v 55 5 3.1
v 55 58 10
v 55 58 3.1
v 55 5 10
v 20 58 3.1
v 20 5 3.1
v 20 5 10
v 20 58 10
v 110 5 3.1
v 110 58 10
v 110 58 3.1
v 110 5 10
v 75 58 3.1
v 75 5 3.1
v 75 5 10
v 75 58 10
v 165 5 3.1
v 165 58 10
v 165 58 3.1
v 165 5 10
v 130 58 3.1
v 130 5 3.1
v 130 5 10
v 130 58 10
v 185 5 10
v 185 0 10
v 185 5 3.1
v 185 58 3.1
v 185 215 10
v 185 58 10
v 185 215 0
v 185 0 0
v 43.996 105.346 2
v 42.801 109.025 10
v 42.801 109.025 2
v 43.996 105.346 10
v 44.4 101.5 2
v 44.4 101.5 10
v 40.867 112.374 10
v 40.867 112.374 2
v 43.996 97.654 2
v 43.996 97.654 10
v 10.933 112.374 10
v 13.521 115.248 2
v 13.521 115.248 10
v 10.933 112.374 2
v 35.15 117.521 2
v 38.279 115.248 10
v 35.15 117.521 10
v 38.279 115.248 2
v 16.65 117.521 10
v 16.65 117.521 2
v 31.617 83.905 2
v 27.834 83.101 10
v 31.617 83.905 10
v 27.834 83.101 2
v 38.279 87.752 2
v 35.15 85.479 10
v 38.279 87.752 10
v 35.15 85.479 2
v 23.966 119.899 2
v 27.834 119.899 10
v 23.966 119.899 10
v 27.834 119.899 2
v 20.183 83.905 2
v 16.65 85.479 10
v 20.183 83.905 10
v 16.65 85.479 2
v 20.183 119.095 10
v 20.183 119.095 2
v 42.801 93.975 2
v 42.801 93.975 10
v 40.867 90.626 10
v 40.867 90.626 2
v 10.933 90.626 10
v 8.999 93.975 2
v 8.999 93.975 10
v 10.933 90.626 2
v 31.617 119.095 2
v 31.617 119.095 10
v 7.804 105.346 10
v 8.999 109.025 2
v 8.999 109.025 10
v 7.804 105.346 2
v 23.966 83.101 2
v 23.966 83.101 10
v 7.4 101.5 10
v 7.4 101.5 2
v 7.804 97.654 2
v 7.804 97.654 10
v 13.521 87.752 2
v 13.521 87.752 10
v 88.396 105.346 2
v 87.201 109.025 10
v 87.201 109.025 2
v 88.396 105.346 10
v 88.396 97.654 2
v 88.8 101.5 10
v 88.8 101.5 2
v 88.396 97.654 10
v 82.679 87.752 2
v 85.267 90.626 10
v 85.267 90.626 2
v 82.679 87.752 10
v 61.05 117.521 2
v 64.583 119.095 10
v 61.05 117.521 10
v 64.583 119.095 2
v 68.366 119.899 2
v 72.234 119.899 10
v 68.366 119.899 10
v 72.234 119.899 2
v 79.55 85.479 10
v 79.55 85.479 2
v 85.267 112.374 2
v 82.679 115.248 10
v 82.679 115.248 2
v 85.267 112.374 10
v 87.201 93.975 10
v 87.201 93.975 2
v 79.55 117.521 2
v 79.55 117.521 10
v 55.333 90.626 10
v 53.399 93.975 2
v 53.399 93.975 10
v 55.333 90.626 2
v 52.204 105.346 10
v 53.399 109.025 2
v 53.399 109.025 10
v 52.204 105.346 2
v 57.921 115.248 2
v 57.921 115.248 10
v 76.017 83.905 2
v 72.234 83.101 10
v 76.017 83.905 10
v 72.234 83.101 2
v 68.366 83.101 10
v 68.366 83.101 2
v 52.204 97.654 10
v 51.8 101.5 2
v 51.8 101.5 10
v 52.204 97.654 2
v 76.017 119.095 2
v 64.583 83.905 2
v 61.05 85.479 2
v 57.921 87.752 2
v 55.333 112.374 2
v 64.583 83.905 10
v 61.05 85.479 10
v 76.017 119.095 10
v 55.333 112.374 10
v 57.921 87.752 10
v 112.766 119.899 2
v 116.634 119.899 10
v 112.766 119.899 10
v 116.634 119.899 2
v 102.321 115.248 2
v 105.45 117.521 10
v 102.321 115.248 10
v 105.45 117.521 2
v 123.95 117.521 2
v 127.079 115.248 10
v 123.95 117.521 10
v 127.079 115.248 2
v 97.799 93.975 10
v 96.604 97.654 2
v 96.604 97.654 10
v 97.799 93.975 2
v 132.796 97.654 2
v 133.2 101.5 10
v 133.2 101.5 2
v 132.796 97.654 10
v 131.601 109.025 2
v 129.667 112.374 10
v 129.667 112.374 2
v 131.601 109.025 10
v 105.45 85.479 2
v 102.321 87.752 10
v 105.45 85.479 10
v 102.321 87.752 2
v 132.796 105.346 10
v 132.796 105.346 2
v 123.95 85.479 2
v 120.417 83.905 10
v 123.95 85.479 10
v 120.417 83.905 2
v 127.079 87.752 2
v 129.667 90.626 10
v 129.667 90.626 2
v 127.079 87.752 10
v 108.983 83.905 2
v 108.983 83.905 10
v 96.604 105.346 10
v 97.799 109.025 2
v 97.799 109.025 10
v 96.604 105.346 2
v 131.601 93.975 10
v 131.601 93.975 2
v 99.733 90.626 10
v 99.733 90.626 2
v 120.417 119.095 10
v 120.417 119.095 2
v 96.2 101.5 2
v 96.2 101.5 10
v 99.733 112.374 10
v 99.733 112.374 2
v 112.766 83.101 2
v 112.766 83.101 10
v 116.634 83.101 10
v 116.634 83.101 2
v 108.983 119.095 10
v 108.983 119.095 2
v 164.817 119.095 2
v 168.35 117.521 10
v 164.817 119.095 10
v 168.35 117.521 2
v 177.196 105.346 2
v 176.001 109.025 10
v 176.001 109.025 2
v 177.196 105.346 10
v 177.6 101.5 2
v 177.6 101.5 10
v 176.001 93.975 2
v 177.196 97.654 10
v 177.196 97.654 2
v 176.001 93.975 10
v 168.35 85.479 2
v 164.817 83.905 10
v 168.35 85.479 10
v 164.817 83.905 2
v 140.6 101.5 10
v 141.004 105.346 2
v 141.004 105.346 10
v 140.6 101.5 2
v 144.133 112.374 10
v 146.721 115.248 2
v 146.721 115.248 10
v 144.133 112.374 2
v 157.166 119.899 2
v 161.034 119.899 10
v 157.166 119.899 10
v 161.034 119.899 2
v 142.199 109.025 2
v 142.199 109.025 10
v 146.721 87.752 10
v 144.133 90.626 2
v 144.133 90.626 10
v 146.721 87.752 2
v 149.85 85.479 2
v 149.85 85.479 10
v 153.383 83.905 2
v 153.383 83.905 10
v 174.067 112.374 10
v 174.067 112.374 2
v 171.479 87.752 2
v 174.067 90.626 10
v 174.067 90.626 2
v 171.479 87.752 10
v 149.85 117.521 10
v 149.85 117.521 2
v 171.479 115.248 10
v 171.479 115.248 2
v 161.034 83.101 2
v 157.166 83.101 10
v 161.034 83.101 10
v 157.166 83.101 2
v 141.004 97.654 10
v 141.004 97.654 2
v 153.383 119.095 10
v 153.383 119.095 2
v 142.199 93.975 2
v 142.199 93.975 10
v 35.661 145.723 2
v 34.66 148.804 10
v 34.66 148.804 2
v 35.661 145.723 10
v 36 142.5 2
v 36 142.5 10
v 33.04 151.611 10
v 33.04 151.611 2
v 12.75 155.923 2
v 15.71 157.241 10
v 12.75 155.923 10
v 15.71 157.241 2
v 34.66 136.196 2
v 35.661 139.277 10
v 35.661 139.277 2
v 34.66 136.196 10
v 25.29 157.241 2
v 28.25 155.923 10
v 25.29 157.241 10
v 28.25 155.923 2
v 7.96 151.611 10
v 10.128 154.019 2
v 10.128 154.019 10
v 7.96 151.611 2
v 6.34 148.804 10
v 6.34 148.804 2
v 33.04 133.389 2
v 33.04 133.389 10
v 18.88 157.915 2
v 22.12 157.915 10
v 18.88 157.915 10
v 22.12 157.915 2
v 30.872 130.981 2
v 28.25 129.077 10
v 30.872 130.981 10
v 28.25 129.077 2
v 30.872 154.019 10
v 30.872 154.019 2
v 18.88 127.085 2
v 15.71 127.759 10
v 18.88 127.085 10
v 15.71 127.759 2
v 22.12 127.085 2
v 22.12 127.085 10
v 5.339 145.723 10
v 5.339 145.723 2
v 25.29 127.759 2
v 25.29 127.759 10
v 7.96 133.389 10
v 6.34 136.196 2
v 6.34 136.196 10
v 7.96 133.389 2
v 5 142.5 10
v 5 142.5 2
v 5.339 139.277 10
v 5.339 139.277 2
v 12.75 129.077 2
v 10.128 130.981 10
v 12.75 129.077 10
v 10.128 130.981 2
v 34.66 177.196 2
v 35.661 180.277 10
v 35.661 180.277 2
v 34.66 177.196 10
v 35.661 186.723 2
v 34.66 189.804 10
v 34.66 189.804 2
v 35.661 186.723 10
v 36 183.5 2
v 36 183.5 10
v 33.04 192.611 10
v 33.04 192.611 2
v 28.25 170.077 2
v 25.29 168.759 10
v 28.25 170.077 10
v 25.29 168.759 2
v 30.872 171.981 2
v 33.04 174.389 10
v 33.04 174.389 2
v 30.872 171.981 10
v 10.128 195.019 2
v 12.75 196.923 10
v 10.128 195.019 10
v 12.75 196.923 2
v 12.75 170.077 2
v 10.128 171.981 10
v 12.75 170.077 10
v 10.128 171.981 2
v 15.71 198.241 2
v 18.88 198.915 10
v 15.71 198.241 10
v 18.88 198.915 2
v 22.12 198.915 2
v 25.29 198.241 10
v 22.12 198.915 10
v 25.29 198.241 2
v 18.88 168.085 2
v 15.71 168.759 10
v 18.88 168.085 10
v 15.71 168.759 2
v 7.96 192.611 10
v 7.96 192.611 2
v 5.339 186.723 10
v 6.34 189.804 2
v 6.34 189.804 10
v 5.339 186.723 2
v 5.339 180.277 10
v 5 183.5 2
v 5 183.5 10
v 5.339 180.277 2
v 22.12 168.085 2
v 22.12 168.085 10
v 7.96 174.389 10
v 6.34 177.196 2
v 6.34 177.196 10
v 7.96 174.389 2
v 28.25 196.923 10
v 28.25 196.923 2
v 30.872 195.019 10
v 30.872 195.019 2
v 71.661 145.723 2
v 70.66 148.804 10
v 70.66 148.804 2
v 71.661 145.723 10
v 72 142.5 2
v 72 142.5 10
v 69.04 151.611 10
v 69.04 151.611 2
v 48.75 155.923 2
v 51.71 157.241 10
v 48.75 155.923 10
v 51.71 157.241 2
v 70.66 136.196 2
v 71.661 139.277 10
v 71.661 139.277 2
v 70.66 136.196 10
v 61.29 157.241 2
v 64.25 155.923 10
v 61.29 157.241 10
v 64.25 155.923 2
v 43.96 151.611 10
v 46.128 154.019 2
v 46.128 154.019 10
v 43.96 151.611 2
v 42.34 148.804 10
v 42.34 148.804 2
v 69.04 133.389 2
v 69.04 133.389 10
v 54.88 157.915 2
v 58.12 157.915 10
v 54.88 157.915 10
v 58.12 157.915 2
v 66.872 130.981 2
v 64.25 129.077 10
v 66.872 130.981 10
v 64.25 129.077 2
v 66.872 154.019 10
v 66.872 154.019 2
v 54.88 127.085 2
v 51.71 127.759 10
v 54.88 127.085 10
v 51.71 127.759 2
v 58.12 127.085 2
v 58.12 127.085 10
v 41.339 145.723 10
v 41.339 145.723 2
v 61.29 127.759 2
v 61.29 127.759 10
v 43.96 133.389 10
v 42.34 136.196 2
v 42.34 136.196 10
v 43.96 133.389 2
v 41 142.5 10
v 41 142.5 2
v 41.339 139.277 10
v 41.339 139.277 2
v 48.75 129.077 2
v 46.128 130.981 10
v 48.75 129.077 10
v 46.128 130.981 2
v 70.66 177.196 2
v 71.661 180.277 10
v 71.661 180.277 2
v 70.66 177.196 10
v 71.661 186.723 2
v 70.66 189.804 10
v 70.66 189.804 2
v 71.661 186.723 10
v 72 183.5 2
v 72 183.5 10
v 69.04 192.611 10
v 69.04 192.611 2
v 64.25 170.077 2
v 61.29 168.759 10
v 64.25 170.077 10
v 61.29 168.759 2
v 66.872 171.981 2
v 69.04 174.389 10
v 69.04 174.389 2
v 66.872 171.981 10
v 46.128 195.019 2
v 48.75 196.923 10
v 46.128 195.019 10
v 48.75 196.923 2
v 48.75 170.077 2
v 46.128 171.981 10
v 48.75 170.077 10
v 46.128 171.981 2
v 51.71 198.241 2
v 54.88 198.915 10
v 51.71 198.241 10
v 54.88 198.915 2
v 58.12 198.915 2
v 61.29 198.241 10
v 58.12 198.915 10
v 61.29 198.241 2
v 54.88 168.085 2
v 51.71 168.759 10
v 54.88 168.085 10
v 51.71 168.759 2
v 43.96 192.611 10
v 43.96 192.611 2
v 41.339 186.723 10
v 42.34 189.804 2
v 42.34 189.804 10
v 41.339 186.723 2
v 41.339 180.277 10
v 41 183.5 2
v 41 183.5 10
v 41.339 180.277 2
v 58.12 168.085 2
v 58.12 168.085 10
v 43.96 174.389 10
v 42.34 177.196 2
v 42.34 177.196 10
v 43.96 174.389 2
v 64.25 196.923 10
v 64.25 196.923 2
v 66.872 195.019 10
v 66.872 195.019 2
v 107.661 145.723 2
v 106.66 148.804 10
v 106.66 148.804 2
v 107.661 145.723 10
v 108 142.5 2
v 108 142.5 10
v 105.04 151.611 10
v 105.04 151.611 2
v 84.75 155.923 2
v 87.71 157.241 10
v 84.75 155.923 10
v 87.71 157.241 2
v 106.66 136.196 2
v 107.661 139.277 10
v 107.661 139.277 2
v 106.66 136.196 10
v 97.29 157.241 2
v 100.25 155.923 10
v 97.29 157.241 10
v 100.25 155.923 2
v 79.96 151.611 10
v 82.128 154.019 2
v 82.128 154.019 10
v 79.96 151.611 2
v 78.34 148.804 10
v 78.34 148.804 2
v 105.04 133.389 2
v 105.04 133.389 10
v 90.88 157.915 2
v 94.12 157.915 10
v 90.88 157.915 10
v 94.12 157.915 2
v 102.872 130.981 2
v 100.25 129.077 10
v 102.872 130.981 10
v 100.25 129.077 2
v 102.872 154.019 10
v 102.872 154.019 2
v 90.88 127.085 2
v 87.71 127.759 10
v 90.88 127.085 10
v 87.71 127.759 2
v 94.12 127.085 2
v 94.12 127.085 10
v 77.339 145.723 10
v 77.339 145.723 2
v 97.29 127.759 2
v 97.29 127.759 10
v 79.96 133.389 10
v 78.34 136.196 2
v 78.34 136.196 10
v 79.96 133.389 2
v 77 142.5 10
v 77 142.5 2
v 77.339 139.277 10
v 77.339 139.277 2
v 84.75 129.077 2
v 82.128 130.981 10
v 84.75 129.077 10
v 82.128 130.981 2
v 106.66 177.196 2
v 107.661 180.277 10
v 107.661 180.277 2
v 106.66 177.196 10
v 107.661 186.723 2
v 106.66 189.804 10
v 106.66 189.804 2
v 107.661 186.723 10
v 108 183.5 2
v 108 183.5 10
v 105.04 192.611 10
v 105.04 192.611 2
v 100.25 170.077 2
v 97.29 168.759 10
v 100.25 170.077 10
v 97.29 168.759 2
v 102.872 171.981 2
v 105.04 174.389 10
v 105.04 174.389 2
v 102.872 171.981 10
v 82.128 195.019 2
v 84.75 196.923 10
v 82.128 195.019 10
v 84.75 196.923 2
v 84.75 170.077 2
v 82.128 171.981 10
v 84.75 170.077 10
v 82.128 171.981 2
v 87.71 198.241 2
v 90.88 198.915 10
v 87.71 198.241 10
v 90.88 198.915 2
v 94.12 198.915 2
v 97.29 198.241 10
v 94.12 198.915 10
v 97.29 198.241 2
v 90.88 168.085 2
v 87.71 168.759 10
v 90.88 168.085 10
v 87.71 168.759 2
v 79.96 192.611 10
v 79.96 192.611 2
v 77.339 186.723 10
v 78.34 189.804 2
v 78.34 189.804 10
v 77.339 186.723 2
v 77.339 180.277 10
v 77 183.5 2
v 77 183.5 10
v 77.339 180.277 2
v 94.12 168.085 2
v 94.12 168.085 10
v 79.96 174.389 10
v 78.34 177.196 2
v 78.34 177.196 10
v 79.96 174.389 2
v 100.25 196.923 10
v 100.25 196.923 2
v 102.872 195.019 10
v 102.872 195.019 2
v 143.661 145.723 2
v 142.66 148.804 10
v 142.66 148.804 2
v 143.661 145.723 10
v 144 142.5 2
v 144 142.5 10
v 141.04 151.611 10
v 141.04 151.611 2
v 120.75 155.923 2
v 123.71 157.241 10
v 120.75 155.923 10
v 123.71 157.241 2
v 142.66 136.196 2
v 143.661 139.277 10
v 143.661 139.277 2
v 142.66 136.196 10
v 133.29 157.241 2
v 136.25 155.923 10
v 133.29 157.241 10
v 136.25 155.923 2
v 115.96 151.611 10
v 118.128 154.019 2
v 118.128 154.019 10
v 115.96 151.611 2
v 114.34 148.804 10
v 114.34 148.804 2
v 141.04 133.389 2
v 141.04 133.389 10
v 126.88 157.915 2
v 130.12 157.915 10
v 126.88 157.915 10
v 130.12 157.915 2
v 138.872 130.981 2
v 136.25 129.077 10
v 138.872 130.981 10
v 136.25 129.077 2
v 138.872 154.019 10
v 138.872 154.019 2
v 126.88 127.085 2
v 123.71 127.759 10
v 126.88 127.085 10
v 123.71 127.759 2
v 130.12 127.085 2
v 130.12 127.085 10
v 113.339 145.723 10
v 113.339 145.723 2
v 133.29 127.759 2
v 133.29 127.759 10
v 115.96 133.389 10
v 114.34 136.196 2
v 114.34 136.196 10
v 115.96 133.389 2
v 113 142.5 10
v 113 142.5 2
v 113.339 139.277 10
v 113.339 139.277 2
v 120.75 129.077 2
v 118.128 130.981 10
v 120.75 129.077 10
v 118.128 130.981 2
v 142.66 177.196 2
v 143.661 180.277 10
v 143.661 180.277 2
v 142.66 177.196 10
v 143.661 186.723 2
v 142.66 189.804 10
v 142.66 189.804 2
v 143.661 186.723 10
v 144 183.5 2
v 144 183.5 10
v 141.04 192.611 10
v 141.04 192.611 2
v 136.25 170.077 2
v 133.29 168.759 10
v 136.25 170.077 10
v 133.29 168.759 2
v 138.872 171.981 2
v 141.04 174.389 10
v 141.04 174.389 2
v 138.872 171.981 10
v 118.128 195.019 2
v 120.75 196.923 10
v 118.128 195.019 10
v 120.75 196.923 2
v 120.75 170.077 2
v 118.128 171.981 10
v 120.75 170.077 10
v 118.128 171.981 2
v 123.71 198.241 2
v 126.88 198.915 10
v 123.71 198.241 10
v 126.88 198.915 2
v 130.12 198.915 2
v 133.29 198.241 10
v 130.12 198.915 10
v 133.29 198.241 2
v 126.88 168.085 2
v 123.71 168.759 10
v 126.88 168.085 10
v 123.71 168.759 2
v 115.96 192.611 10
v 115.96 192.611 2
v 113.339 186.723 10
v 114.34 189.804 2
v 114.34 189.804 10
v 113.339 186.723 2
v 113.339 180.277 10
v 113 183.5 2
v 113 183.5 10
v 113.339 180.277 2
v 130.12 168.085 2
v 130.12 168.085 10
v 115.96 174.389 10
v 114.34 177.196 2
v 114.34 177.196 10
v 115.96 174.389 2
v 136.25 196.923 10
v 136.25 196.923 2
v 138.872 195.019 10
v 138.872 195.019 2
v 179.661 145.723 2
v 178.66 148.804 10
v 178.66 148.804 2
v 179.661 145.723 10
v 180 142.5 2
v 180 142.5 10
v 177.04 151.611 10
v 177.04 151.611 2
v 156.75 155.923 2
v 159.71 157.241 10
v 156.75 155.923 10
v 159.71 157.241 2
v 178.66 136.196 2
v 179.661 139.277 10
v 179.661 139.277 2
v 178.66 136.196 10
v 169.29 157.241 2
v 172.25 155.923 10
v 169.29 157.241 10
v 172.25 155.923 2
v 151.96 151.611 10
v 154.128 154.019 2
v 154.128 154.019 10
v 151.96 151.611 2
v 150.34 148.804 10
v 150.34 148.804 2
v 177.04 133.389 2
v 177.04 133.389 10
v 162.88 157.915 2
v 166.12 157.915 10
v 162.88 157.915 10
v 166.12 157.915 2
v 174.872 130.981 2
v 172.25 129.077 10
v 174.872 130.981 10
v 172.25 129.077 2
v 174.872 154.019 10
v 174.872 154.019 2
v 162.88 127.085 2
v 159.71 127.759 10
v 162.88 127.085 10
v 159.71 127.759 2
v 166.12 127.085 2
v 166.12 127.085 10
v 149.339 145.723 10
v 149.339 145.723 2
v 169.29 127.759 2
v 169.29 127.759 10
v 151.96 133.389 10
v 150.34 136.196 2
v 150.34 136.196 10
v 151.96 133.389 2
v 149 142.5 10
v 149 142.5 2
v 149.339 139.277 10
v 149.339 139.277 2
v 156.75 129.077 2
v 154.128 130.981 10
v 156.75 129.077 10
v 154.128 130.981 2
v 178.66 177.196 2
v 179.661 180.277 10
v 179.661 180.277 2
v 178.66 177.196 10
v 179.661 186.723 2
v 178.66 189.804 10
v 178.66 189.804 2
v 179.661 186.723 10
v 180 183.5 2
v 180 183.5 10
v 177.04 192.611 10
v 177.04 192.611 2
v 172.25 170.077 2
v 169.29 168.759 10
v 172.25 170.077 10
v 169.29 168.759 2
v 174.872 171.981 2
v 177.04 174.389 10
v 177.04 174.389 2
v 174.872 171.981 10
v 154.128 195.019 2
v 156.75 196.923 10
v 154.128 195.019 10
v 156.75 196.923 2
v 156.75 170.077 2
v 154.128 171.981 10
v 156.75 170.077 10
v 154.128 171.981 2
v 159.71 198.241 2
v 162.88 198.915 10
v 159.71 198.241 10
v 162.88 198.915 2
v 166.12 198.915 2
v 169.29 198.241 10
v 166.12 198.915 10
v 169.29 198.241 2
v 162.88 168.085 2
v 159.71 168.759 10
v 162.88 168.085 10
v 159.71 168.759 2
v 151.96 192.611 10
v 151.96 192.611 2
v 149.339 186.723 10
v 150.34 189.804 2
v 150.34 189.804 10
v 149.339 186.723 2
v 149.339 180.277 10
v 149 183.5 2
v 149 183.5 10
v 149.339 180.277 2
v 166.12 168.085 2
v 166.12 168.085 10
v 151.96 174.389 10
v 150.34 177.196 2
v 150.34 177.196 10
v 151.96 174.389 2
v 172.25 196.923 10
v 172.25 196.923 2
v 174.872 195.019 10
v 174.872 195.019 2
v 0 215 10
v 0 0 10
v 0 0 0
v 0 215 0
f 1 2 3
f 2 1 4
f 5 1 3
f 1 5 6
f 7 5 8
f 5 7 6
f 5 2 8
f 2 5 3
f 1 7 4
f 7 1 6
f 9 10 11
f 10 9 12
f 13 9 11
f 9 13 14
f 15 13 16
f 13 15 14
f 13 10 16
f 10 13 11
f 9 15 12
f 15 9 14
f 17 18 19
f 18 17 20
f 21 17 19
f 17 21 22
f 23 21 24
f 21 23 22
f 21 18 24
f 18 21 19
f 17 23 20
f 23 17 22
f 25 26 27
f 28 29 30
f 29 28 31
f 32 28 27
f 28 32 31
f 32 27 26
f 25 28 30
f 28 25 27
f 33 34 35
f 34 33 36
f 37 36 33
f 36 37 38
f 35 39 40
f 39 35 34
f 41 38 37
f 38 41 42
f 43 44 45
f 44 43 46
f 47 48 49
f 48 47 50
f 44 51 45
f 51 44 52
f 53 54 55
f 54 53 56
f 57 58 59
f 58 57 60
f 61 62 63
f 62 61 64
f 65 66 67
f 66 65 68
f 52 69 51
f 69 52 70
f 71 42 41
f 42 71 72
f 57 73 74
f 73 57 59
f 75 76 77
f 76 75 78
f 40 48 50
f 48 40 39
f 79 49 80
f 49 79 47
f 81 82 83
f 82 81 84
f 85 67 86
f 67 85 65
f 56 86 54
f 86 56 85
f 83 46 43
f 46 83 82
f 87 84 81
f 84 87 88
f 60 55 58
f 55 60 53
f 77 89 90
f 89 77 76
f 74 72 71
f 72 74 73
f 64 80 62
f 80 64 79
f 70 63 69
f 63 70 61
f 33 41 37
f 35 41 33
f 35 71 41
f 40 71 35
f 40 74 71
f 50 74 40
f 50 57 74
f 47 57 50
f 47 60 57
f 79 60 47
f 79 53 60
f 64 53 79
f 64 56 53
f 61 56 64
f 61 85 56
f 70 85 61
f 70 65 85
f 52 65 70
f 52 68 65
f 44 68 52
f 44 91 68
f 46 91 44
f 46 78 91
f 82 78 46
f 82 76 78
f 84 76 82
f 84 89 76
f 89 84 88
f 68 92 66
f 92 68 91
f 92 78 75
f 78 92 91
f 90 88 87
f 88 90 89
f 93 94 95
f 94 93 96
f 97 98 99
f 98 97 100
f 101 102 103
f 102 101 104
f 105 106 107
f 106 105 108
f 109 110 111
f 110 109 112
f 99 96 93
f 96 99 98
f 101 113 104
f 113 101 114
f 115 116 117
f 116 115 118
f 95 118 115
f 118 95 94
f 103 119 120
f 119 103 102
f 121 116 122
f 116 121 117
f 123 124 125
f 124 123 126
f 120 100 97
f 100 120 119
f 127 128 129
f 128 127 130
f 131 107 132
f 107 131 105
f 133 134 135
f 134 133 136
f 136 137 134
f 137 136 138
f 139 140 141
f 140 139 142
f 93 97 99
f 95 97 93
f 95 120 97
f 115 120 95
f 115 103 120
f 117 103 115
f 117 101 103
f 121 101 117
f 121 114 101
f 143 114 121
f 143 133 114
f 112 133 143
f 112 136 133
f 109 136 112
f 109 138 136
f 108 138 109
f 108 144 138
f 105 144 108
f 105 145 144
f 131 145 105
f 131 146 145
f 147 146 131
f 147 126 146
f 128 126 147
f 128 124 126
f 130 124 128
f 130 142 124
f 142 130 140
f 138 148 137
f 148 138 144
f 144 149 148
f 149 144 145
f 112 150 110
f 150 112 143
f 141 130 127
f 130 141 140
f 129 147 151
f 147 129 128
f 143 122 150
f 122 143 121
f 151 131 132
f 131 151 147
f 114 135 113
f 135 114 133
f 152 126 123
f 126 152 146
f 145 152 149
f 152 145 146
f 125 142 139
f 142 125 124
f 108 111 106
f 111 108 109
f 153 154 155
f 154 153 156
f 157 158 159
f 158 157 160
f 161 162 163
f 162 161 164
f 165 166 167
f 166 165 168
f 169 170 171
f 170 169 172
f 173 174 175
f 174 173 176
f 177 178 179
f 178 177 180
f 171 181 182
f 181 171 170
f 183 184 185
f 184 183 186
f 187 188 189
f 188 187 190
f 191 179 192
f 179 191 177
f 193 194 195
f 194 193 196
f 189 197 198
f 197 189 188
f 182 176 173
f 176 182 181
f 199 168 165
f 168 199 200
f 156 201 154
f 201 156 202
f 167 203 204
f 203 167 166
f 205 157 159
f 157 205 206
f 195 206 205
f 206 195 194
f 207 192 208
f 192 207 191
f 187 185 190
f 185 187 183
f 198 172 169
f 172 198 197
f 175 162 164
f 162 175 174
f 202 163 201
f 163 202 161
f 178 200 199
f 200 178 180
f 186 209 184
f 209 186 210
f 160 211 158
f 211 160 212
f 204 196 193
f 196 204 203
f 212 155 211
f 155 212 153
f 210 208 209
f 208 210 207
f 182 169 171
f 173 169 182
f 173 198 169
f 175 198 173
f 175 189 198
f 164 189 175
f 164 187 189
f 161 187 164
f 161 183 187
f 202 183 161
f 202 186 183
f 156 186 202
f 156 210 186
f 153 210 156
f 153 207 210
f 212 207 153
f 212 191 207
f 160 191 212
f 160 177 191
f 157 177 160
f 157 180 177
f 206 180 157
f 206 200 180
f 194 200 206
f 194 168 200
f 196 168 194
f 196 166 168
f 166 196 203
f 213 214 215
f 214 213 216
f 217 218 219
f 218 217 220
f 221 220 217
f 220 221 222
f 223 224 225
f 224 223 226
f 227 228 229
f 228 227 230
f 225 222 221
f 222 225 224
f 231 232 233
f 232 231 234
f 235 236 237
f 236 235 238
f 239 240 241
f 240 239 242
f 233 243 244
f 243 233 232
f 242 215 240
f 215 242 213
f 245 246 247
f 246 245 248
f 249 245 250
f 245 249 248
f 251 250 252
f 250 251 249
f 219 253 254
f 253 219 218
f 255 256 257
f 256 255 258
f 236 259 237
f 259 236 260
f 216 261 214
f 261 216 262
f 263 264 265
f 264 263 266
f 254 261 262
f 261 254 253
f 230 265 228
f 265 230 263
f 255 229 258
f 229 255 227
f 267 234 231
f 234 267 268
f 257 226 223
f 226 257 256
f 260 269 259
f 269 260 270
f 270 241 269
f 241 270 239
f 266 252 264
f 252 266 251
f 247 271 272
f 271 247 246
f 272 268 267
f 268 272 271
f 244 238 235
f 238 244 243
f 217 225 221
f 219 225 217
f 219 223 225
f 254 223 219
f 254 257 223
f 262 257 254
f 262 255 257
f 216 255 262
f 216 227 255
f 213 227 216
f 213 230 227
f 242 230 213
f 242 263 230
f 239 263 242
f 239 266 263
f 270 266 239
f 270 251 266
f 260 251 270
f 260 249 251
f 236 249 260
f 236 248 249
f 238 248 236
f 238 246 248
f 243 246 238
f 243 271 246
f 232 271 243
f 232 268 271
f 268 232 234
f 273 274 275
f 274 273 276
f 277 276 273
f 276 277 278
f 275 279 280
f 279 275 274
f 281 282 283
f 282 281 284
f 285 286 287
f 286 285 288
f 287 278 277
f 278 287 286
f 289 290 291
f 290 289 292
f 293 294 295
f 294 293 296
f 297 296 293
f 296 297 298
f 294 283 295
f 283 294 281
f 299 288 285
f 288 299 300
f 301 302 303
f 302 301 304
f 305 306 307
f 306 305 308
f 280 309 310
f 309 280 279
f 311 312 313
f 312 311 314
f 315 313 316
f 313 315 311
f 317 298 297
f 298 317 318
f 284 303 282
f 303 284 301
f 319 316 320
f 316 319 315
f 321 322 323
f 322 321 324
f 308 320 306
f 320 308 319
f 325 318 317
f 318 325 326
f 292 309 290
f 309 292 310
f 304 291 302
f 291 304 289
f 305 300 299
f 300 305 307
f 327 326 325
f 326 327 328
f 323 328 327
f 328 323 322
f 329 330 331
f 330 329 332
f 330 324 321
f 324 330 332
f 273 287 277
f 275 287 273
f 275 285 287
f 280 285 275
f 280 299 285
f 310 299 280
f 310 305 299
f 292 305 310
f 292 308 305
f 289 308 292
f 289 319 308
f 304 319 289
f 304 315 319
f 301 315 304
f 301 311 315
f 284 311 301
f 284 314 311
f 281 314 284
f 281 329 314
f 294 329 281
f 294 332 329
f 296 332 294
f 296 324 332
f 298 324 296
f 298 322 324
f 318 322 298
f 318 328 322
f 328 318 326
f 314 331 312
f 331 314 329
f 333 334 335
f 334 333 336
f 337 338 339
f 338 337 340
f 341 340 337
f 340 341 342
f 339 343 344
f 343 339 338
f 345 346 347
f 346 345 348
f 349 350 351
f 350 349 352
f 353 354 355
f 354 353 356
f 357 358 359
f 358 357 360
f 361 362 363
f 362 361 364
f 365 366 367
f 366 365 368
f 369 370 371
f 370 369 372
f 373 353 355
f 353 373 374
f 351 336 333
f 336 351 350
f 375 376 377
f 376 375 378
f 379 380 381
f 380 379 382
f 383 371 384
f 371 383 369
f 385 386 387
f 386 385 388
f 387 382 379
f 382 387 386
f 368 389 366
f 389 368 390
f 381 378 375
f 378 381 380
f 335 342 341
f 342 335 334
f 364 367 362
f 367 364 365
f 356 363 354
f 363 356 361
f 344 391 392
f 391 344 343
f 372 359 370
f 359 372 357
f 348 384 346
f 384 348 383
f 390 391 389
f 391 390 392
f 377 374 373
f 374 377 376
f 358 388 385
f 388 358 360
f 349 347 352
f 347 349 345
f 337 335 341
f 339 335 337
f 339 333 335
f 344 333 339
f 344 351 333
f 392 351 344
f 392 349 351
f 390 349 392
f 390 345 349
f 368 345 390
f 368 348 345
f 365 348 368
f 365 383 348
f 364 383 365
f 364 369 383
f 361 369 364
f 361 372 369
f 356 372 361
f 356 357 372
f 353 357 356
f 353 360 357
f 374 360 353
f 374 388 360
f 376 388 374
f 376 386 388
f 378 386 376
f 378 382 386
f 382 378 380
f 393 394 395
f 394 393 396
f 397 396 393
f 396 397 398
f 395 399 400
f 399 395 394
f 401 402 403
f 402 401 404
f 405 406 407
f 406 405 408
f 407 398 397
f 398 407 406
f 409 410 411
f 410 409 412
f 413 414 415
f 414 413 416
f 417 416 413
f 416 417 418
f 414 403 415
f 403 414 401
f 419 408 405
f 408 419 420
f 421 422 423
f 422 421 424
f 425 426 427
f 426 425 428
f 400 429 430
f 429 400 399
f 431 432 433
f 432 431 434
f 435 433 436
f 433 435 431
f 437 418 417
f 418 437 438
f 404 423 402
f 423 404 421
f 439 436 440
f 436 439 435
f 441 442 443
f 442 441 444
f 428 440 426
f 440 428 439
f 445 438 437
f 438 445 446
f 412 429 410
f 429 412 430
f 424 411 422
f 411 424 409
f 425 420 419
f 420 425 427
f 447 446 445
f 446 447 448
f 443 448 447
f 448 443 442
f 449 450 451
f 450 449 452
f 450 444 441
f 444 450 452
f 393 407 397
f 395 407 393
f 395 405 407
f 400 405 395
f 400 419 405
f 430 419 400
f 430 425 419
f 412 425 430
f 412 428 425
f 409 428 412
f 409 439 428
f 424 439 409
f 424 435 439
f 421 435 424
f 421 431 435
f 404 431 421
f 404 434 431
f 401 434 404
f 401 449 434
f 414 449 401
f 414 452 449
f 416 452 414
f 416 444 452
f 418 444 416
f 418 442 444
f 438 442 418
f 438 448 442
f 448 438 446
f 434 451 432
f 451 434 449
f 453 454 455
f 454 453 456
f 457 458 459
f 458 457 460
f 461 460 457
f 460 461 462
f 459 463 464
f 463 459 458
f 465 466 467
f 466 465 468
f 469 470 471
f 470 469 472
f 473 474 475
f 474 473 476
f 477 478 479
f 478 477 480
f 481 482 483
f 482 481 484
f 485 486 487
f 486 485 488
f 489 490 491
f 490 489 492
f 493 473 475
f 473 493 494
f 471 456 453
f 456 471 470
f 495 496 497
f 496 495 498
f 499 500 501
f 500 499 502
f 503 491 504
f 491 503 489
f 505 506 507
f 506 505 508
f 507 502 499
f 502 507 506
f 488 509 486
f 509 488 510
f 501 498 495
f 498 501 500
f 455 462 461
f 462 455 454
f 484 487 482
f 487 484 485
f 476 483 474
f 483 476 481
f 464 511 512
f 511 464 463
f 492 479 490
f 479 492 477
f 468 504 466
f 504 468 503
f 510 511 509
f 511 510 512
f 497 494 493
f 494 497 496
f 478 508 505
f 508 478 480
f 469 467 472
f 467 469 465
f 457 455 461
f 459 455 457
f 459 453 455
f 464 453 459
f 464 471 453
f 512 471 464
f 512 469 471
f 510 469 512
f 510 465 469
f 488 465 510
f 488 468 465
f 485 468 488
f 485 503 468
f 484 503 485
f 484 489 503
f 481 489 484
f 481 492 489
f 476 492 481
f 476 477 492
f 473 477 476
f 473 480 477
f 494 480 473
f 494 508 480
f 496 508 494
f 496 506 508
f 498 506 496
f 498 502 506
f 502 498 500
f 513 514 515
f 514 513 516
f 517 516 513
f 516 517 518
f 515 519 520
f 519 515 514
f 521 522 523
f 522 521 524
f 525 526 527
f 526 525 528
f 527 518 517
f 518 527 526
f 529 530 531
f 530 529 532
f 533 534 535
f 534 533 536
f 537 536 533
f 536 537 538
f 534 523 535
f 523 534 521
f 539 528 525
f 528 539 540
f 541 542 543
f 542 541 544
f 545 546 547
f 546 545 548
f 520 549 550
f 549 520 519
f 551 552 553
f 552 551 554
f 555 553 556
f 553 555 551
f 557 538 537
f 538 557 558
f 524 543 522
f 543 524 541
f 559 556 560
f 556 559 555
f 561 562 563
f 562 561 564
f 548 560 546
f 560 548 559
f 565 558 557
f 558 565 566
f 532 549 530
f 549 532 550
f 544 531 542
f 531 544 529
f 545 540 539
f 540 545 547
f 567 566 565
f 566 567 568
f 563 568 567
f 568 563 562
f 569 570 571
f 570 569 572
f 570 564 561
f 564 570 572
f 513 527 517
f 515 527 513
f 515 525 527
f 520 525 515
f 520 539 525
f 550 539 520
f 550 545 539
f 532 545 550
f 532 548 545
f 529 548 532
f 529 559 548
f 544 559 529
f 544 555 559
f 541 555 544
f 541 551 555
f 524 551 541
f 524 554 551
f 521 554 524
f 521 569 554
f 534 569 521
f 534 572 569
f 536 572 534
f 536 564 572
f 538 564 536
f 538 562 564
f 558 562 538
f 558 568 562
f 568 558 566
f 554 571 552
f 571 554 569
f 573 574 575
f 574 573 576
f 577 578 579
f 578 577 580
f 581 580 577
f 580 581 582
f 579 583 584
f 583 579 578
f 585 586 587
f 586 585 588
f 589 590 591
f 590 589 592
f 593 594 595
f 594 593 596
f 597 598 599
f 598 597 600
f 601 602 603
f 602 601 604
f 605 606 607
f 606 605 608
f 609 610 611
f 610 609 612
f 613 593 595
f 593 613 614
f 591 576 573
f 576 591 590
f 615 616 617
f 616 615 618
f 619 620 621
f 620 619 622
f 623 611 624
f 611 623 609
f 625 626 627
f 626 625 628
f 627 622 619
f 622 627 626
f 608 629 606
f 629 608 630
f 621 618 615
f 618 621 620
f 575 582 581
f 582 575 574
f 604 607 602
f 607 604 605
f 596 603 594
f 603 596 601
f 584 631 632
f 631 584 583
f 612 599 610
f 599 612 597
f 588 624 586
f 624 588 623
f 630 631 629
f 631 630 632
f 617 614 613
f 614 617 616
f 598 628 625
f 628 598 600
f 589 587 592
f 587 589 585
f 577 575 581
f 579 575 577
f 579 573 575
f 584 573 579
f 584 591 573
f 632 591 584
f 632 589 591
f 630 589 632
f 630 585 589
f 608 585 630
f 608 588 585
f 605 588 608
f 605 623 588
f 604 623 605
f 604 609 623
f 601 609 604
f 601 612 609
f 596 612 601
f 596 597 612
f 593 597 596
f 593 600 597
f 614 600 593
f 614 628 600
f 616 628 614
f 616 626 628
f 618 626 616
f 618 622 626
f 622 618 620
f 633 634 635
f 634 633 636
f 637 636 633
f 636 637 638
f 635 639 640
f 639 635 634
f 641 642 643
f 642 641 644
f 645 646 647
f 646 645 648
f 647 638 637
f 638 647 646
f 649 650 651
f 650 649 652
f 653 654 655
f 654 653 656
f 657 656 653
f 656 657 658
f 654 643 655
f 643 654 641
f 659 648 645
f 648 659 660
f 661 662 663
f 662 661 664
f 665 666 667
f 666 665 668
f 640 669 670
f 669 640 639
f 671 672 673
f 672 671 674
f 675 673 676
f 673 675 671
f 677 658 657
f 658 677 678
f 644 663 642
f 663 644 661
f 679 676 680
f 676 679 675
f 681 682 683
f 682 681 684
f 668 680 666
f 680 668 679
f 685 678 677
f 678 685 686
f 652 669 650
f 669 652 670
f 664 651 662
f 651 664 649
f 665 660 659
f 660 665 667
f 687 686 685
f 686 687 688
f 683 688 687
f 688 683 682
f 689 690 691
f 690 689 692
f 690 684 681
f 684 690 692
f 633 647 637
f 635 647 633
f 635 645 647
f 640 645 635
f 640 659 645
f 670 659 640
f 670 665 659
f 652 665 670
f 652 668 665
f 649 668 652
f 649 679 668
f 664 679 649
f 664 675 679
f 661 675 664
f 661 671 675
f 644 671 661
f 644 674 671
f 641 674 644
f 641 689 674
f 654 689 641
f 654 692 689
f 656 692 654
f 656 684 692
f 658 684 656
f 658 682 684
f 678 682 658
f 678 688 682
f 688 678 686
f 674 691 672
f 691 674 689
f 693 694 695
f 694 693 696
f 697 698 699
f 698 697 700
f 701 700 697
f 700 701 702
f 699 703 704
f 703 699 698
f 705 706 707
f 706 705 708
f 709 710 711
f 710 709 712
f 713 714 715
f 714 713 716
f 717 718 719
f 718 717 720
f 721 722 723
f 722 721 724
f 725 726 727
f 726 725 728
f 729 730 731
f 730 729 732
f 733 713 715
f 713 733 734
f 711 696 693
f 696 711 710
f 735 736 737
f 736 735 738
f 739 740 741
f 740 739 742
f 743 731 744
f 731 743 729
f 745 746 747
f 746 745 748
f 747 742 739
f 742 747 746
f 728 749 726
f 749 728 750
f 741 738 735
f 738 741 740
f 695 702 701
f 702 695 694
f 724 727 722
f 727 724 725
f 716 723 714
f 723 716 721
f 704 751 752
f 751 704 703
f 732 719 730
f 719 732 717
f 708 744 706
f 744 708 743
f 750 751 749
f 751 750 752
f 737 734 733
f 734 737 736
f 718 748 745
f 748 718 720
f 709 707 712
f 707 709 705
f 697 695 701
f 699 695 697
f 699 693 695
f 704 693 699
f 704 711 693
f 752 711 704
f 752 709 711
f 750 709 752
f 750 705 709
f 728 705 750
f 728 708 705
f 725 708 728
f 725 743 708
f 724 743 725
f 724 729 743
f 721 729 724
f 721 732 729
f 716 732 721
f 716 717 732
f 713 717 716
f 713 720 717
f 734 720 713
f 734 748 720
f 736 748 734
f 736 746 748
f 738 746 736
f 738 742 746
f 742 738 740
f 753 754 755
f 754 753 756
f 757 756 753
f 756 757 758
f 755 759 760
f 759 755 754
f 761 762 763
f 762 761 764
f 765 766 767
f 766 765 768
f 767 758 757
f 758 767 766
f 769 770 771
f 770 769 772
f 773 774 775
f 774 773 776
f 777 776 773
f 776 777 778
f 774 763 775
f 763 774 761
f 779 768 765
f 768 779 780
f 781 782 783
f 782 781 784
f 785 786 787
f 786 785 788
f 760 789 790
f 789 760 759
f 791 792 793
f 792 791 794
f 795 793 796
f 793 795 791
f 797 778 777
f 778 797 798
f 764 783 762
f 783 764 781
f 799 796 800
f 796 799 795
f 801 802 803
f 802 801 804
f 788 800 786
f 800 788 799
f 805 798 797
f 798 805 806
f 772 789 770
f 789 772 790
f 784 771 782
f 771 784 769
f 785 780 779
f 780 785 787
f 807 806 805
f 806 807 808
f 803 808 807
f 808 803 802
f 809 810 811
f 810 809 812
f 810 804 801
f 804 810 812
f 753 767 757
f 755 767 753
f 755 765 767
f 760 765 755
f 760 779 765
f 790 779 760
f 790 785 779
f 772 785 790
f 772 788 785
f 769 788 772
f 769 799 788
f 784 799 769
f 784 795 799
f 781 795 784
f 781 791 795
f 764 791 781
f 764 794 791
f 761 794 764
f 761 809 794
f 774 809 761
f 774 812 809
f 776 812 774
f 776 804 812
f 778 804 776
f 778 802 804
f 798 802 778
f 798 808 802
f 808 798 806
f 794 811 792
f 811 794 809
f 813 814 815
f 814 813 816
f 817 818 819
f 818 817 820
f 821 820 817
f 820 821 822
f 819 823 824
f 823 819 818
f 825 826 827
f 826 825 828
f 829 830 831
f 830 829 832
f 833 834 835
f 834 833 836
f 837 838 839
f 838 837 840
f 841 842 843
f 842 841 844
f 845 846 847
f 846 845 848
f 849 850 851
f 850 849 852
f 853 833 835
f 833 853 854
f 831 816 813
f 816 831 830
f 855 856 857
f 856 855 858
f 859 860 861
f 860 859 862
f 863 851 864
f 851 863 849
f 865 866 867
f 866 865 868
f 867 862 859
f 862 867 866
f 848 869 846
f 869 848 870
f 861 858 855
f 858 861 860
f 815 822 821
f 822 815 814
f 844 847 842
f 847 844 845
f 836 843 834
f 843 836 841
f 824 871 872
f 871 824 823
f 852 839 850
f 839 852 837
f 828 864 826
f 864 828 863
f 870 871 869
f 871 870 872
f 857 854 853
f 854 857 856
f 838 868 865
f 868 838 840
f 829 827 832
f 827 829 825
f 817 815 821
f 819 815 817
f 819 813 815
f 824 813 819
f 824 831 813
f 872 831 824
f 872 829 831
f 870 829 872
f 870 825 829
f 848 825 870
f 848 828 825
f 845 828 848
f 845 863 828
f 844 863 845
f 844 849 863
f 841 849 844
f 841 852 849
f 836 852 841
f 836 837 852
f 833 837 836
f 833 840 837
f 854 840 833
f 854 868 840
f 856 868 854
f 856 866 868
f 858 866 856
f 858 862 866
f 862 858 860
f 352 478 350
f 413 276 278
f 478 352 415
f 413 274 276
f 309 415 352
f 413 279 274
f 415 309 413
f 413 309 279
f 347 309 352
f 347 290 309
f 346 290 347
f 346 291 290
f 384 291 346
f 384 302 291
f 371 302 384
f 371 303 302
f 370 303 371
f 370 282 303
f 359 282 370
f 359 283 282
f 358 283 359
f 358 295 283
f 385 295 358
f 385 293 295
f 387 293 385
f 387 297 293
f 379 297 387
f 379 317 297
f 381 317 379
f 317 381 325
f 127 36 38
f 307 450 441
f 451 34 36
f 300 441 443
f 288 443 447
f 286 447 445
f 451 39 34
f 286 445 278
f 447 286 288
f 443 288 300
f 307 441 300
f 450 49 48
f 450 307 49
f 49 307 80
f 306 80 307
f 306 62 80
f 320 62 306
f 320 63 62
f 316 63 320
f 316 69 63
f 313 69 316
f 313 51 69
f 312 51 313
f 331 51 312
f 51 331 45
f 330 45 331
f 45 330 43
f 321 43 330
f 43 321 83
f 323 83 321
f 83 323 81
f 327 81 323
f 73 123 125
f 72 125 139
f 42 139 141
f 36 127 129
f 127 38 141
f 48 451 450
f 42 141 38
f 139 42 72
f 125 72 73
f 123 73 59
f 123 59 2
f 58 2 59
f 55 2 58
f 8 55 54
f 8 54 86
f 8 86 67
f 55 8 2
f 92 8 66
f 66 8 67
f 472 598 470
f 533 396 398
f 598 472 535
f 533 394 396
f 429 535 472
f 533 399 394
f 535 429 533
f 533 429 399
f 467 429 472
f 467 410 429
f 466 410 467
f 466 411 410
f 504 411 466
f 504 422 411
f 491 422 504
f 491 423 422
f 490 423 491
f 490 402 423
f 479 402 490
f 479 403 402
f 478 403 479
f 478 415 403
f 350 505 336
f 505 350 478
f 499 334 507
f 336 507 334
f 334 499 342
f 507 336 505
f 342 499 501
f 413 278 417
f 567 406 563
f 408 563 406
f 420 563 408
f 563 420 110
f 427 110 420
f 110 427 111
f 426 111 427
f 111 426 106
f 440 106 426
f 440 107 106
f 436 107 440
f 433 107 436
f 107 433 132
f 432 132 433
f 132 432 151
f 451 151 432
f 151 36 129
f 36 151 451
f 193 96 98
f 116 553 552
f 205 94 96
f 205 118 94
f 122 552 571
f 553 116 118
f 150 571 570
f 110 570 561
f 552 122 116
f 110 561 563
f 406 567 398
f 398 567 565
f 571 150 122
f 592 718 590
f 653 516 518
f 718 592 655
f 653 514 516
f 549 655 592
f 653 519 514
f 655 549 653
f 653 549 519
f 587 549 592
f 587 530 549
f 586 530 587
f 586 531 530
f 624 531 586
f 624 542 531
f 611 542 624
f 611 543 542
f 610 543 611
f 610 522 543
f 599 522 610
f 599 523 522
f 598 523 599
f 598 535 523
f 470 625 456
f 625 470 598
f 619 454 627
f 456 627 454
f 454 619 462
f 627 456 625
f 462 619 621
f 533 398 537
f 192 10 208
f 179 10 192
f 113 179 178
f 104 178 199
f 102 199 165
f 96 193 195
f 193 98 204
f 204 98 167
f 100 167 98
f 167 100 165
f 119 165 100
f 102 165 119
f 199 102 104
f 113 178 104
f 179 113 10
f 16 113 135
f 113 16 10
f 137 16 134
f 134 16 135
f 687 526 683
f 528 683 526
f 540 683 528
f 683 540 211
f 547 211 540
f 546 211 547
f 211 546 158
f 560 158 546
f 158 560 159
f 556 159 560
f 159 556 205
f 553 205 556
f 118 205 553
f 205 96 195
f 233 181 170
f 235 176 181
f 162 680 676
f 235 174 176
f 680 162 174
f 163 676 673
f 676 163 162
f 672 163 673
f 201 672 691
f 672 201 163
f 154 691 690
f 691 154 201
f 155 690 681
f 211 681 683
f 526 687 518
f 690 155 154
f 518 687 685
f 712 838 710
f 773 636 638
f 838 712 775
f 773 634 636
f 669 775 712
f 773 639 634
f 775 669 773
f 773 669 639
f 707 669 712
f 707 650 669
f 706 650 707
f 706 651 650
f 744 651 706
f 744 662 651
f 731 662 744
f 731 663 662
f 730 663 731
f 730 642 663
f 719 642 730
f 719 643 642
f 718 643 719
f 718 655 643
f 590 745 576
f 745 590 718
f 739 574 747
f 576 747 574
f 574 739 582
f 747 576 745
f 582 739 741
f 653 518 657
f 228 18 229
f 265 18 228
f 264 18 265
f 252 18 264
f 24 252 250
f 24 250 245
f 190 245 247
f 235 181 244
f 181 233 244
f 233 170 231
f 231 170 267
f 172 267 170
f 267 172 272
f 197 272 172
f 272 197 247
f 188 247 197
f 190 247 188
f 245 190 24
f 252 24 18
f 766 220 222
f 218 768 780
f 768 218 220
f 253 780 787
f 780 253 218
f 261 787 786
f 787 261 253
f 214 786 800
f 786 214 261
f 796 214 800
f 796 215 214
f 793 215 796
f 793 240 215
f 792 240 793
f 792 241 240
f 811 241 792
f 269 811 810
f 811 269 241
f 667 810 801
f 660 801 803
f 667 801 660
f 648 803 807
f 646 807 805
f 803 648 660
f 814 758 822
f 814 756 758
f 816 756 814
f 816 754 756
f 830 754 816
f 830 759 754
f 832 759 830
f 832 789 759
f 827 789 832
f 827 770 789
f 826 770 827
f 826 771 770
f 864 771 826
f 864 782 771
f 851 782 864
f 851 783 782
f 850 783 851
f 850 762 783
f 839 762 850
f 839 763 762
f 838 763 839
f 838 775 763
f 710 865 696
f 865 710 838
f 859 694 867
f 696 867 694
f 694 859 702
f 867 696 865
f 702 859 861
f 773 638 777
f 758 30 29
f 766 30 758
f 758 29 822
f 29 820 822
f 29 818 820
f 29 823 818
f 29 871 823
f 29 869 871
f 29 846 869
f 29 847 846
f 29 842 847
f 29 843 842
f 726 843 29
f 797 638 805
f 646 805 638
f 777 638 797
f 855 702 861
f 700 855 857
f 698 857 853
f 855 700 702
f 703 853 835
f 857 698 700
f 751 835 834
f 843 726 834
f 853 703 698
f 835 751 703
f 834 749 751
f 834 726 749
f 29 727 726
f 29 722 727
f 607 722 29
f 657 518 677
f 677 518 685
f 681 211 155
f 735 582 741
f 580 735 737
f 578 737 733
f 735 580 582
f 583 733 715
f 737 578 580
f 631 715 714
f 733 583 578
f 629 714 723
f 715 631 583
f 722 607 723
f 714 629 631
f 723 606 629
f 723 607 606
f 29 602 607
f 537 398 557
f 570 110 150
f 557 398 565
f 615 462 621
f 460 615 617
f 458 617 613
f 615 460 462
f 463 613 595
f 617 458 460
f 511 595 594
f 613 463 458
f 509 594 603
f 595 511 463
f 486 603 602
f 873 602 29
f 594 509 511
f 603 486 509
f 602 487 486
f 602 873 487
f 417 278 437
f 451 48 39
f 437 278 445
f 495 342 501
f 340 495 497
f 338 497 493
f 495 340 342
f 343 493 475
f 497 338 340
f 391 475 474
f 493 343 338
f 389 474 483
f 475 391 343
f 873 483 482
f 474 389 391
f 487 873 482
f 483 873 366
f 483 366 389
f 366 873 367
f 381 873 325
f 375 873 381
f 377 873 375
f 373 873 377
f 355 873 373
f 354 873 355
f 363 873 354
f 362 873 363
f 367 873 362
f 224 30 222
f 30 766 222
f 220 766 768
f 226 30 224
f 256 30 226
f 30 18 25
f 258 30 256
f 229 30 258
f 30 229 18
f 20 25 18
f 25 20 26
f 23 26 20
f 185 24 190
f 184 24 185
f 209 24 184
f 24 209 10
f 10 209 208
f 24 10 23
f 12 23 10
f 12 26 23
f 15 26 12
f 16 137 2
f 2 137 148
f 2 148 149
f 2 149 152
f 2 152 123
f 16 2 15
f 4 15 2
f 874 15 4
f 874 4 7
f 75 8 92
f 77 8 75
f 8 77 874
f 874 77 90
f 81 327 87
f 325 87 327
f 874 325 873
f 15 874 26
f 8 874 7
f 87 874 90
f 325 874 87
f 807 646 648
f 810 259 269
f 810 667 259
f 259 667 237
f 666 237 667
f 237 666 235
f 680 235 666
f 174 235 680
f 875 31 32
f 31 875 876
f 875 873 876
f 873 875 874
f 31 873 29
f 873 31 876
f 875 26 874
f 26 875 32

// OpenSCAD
//six base plates make a drawer
base_x = 185;
base_y = 215;
base_thickness = 10;

depth = 8; 

small_bottle_diameter = 31;
medium_bottle_diameter = 37;
big_bottle_x = 35;
big_bottle_y = 53;
bottom_margin = 5;
spacing_y = 10;

big_bottle_spacing_x = (base_x - (3*big_bottle_x))/4;

medium_bottle_spacing_y = spacing_y + big_bottle_y+(2*spacing_y+medium_bottle_diameter/2);
medium_spacing = (base_x - 4*medium_bottle_diameter)/5;

small_bottle_y = medium_bottle_spacing_y+medium_bottle_diameter+spacing_y-6;
small_bottle_spacing_y = (base_x - 5*small_bottle_diameter)/6;
small_bottle_y2 = small_bottle_diameter+spacing_y;

function medium_bottle_x(bottle_number) = (medium_spacing+medium_bottle_diameter/2)+(medium_spacing+(medium_bottle_diameter))*bottle_number;

function small_bottle_x(bottle_number) = (small_bottle_spacing_y+small_bottle_diameter/2)+(small_bottle_spacing_y+(small_bottle_diameter))*bottle_number;

difference() {
  cube([185,215,10]);
  big_bottles();
  medium_bottles();
  small_bottles();
}

module small_bottles() {
  translate([small_bottle_x(0),small_bottle_y,0]) { 
    small_bottle_pair();
  }
  translate([small_bottle_x(1),small_bottle_y,0]) {
    small_bottle_pair();
  }
  translate([small_bottle_x(2),small_bottle_y,0]) {
    small_bottle_pair();
  }
  translate([small_bottle_x(3),small_bottle_y,0]) {
    small_bottle_pair();
  }
  translate([small_bottle_x(4),small_bottle_y,0]) {
    small_bottle_pair();
  }
}

module small_bottle_pair() {
  color("orange") {
    translate([0,0,2]) {
    cylinder(h=10, d=small_bottle_diameter);
    }
    translate([0,small_bottle_y2,2]) {
    cylinder(h=10, d=small_bottle_diameter);
    }
  }
}

module medium_bottles() {
  translate([medium_bottle_x(0),medium_bottle_spacing_y,0]) {
    medium_bottle();
  }
  translate([medium_bottle_x(1),medium_bottle_spacing_y,0]) {
    medium_bottle();
  }
  translate([medium_bottle_x(2),medium_bottle_spacing_y,0]) {
    medium_bottle();
  }
  translate([medium_bottle_x(3),medium_bottle_spacing_y,0]) {
    medium_bottle();
  }
}

module medium_bottle() {
  color("purple") {
    translate([0,0,2]) {
      cylinder(h=10, d=medium_bottle_diameter);
    }
  }
}

module big_bottles() {
  translate([big_bottle_spacing_x,bottom_margin,0]) {
    big_bottle();
  }
  translate([big_bottle_x+(2*big_bottle_spacing_x),bottom_margin,0]) {
    big_bottle();
  }
  translate([(2*big_bottle_x)+(3*big_bottle_spacing_x),bottom_margin,0]) {
    big_bottle();
  }
  translate([(3*big_bottle_x)+(4*big_bottle_spacing_x),bottom_margin,0]) {
    big_bottle();
  }
}

module big_bottle() {
  translate([0,0,3.1]) {
    cube([big_bottle_x,big_bottle_y,depth]);  
  }
}
